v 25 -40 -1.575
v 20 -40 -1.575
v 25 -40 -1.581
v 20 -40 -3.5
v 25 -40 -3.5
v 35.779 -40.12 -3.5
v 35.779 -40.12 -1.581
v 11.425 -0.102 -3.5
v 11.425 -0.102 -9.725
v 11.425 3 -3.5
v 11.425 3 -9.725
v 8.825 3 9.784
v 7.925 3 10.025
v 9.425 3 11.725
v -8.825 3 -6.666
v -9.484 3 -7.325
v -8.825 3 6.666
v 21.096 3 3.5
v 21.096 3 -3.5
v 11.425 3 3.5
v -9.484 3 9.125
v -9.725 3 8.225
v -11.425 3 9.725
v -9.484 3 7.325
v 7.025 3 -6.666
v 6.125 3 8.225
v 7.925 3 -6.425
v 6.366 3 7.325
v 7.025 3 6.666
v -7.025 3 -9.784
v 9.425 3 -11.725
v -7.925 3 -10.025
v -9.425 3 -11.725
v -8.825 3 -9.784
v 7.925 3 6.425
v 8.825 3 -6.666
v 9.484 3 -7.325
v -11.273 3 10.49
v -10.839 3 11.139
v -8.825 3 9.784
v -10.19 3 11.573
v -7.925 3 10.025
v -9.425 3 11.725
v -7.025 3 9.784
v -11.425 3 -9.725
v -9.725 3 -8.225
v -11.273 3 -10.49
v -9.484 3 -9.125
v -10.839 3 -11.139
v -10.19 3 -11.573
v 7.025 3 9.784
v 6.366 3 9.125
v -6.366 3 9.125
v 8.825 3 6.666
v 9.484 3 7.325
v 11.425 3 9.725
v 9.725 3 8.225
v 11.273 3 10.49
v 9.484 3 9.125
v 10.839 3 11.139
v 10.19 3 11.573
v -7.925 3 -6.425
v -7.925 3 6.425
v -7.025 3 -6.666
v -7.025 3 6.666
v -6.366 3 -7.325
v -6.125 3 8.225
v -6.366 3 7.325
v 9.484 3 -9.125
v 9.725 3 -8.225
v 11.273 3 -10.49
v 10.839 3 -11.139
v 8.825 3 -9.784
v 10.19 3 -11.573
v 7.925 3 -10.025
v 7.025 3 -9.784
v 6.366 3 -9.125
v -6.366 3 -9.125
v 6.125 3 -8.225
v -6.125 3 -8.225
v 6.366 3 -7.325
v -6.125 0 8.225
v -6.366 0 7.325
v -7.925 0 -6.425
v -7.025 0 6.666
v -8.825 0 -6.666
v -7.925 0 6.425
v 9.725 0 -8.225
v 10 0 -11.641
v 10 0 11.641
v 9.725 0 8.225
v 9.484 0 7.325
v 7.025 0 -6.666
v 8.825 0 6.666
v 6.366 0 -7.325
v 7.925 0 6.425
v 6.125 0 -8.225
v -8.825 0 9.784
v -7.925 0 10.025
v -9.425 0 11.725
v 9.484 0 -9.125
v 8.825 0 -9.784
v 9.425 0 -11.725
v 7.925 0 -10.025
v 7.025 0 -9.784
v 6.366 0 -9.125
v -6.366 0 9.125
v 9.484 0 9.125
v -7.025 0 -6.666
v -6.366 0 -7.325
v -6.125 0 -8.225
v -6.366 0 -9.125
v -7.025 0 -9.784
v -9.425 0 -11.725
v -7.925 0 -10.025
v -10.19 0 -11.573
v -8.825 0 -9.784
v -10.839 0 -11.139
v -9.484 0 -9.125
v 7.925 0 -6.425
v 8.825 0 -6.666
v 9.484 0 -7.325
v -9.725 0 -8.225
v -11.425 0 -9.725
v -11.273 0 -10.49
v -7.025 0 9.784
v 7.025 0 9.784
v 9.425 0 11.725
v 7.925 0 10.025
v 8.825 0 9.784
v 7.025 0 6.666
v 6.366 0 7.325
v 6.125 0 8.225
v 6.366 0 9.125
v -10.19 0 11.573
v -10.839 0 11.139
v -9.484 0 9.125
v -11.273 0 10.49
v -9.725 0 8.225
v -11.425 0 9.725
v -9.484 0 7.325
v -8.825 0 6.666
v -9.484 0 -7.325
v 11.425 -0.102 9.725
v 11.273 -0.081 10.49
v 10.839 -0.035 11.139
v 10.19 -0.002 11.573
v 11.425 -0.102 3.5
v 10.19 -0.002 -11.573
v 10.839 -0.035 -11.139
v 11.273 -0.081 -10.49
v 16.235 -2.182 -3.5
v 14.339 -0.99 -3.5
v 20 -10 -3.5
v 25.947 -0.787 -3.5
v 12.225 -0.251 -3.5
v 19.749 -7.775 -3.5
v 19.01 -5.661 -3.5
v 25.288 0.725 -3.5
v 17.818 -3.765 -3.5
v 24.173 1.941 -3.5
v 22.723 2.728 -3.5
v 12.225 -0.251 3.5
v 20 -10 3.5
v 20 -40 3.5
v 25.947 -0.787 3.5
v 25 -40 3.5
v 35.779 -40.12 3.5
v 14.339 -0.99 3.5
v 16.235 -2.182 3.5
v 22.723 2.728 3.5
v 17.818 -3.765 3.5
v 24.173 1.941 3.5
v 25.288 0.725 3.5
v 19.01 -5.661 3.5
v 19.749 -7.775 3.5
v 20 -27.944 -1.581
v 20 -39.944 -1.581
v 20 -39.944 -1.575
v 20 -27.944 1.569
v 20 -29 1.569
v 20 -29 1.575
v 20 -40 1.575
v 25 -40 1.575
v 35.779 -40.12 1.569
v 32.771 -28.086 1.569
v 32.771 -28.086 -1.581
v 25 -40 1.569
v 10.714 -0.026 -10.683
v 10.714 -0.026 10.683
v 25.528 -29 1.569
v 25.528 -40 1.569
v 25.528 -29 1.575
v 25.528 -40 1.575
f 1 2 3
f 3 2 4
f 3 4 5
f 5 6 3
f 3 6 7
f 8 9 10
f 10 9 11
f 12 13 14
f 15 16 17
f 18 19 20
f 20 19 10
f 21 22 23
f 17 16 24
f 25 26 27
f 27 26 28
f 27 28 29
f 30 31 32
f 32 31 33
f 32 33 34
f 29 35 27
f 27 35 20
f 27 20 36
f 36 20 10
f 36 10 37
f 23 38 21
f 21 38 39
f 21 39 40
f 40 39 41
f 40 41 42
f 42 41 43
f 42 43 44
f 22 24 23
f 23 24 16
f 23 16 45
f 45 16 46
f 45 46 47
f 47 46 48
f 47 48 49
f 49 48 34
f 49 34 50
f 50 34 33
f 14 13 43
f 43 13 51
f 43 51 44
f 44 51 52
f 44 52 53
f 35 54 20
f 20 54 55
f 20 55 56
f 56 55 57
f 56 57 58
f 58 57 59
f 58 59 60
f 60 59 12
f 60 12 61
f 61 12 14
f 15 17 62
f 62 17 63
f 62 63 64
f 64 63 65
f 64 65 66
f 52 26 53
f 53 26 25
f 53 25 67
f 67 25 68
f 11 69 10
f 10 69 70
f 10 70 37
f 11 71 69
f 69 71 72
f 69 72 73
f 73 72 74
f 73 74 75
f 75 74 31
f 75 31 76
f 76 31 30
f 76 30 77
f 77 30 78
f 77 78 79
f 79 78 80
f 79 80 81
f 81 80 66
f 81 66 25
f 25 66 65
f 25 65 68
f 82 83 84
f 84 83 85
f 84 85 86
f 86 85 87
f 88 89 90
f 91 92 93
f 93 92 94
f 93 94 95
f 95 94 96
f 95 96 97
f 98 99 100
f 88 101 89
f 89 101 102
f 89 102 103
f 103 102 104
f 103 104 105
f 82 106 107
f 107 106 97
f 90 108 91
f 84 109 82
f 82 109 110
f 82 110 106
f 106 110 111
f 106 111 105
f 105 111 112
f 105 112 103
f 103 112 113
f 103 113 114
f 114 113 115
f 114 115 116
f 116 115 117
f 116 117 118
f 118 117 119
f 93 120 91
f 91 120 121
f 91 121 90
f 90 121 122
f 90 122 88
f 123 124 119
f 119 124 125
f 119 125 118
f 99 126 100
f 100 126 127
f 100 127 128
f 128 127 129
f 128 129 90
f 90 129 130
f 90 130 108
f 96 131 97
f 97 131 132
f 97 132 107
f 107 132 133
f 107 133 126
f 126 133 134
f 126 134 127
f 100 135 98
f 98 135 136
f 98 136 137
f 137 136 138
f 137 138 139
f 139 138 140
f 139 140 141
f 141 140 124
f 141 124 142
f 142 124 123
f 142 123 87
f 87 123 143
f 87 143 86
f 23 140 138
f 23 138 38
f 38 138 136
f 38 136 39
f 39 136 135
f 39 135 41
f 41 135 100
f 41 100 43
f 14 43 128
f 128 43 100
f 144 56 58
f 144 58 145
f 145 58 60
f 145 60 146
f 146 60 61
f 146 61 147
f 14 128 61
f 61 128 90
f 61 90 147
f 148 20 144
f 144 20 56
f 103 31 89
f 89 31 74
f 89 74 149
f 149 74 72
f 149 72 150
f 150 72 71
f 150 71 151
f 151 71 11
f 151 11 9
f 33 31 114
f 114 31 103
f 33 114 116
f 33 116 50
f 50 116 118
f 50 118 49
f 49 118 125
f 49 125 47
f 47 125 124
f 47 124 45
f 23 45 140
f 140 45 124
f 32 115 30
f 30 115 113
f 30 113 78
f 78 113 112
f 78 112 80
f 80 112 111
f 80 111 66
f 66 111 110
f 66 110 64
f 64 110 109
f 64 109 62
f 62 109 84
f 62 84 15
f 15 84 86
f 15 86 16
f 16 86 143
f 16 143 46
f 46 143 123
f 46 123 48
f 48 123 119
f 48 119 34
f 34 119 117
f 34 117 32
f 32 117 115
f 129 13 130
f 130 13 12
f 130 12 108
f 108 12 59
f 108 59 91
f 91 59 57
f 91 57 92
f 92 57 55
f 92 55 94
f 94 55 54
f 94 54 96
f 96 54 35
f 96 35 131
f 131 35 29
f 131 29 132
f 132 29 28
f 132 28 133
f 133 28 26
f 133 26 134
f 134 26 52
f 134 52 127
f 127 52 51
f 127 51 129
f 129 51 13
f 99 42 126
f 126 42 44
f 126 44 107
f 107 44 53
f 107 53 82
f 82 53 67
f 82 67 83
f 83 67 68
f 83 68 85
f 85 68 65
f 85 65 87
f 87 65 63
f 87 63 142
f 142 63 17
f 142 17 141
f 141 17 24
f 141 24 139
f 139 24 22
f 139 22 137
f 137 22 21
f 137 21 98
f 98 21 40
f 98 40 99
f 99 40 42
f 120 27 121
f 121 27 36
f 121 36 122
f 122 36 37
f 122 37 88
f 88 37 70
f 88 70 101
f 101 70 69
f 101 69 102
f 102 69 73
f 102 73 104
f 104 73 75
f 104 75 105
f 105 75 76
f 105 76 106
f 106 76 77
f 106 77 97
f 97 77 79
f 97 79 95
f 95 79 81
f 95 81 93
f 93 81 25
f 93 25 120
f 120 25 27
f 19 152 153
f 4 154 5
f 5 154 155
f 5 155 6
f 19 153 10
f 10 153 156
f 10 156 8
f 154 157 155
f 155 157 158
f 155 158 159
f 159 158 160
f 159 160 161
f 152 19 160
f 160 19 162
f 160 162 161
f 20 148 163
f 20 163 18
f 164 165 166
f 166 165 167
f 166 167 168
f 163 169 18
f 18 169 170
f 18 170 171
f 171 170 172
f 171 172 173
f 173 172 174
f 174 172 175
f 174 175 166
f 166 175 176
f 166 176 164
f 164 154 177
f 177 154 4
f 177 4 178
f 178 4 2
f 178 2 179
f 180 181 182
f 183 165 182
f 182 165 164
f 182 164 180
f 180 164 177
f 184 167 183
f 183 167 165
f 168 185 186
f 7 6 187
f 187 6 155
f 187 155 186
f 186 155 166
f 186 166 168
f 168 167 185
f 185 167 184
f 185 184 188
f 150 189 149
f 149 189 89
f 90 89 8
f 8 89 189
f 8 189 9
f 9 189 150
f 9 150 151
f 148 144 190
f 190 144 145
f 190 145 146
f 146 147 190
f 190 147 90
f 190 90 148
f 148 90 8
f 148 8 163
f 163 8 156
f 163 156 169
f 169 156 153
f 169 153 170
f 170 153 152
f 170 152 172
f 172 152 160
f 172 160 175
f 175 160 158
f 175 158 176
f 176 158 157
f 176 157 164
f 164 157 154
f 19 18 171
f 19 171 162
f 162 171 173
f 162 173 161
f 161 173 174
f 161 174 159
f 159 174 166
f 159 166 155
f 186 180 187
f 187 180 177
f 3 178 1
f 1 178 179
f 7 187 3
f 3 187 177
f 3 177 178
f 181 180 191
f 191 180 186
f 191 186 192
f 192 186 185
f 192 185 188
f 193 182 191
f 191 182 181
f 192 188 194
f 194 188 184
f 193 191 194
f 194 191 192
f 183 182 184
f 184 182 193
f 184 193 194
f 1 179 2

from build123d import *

# Parameters (mm, degrees)
SKETCH1_R           = 1.8
BOSS_EXTRUDE1_DEPTH = 3
SKETCH2_R           = 1.8
CUT_EXTRUDE1_DEPTH  = 17.643504739
SKETCH3_W           = 25
SKETCH3_H           = 7
BOSS_EXTRUDE2_DEPTH = 3
SKETCH4_W           = 5
SKETCH4_H           = 7
BOSS_EXTRUDE3_DEPTH = 40
BOSS_EXTRUDE4_DEPTH = 7
SKETCH12_W          = 5
SKETCH12_H          = 7
BOSS_EXTRUDE5_DEPTH = 2
FILLET1_R           = 10
FILLET2_R           = 5
SKETCH13_W          = 18.381081226
SKETCH13_H          = 3.15
CUT_EXTRUDE2_DEPTH  = 12
SKETCH14_W          = 6.085668667
SKETCH14_H          = 3.15
CUT_EXTRUDE3_DEPTH  = 11


with BuildPart() as part:
    # Sketch1 → Boss-Extrude1 (new body)
    with BuildSketch(Plane(origin=(0, 0, 0), x_dir=(1, 0, 0), z_dir=(0, 1, 0))):
        with BuildLine():
            Line((-9.425, -11.725), (9.425, -11.725))
            ThreePointArc((9.425, -11.725), (10.839213562, -11.139213562), (11.425, -9.725))
            Line((11.425, -9.725), (11.425, 9.725))
            ThreePointArc((11.425, 9.725), (10.839213562, 11.139213562), (9.425, 11.725))
            Line((9.425, 11.725), (-9.425, 11.725))
            ThreePointArc((-9.425, 11.725), (-10.839213562, 11.139213562), (-11.425, 9.725))
            Line((-11.425, 9.725), (-11.425, -9.725))
            ThreePointArc((-11.425, -9.725), (-10.839213562, -11.139213562), (-9.425, -11.725))
        make_face()
        with Locations(Location((-7.925, 8.225, 0), (0, 0, 270))):
            Circle(SKETCH1_R, mode=Mode.SUBTRACT)
    extrude(amount=BOSS_EXTRUDE1_DEPTH)

    # Sketch2 → Cut-Extrude1 (cut, through all)
    with BuildSketch(Plane(origin=(0, 3, 0), x_dir=(1, 0, 0), z_dir=(0, 1, 0))):
        with Locations(Location((7.925, 8.225, 0), (0, 0, 270))):
            Circle(SKETCH2_R)
        with Locations(Location((-7.925, -8.225, 0), (0, 0, 270))):
            Circle(SKETCH2_R)
        with Locations(Location((7.925, -8.225, 0), (0, 0, 270))):
            Circle(SKETCH2_R)
    extrude(amount=-CUT_EXTRUDE1_DEPTH, mode=Mode.SUBTRACT)

    # Sketch3 → Boss-Extrude2 (add)
    with BuildSketch(Plane(origin=(0, 3, 0), x_dir=(1, 0, 0), z_dir=(0, 1, 0))):
        with Locations((12.5, 0)):
            Rectangle(SKETCH3_W, SKETCH3_H)
    extrude(amount=-BOSS_EXTRUDE2_DEPTH)

    # Sketch4 → Boss-Extrude3 (add)
    with BuildSketch(Plane.XZ):
        with Locations((22.5, 0)):
            Rectangle(SKETCH4_W, SKETCH4_H)
    extrude(amount=BOSS_EXTRUDE3_DEPTH)

    # Sketch7 → Boss-Extrude4 (add)
    with BuildSketch(Plane.XY.offset(3.5)):
        Polygon((25, 3), (35.779116369, -40.119915044), (25, -40), align=None)
    extrude(amount=-BOSS_EXTRUDE4_DEPTH)

    # Sketch12 → Boss-Extrude5 (add)
    with BuildSketch(Plane(origin=(0, 0, 0), x_dir=(1, 0, 0), z_dir=(0, 1, 0))):
        with Locations((22.5, 0)):
            Rectangle(SKETCH12_W, SKETCH12_H)
    extrude(amount=BOSS_EXTRUDE5_DEPTH)

    # Fillet1
    fillet1_edges = [part.edges().sort_by_distance(p)[0] for p in [
        (20, 0, 0),
    ]]
    fillet(fillet1_edges, radius=FILLET1_R)

    # Fillet2
    fillet2_edges = [part.edges().sort_by_distance(p)[0] for p in [
        (25, 3, 0),
    ]]
    fillet(fillet2_edges, radius=FILLET2_R)

    # Sketch13 → Cut-Extrude2 (cut)
    with BuildSketch(Plane(origin=(-0.441841569, -39.71696571, 0), x_dir=(-0.9999381256405767, 0.011124068069294642, 0), z_dir=(-0.011124068069294644, -0.9999381256405768, 0))):
        with Locations((-28.924615029, 0.005980727)):
            Rectangle(SKETCH13_W, SKETCH13_H)
    extrude(amount=-CUT_EXTRUDE2_DEPTH, mode=Mode.SUBTRACT)

    # Sketch14 → Cut-Extrude3 (cut)
    with BuildSketch(Plane.XZ.offset(40)):
        with Locations((22.485556971, 0)):
            Rectangle(SKETCH14_W, SKETCH14_H)
    extrude(amount=-CUT_EXTRUDE3_DEPTH, mode=Mode.SUBTRACT)


solid = part.part
